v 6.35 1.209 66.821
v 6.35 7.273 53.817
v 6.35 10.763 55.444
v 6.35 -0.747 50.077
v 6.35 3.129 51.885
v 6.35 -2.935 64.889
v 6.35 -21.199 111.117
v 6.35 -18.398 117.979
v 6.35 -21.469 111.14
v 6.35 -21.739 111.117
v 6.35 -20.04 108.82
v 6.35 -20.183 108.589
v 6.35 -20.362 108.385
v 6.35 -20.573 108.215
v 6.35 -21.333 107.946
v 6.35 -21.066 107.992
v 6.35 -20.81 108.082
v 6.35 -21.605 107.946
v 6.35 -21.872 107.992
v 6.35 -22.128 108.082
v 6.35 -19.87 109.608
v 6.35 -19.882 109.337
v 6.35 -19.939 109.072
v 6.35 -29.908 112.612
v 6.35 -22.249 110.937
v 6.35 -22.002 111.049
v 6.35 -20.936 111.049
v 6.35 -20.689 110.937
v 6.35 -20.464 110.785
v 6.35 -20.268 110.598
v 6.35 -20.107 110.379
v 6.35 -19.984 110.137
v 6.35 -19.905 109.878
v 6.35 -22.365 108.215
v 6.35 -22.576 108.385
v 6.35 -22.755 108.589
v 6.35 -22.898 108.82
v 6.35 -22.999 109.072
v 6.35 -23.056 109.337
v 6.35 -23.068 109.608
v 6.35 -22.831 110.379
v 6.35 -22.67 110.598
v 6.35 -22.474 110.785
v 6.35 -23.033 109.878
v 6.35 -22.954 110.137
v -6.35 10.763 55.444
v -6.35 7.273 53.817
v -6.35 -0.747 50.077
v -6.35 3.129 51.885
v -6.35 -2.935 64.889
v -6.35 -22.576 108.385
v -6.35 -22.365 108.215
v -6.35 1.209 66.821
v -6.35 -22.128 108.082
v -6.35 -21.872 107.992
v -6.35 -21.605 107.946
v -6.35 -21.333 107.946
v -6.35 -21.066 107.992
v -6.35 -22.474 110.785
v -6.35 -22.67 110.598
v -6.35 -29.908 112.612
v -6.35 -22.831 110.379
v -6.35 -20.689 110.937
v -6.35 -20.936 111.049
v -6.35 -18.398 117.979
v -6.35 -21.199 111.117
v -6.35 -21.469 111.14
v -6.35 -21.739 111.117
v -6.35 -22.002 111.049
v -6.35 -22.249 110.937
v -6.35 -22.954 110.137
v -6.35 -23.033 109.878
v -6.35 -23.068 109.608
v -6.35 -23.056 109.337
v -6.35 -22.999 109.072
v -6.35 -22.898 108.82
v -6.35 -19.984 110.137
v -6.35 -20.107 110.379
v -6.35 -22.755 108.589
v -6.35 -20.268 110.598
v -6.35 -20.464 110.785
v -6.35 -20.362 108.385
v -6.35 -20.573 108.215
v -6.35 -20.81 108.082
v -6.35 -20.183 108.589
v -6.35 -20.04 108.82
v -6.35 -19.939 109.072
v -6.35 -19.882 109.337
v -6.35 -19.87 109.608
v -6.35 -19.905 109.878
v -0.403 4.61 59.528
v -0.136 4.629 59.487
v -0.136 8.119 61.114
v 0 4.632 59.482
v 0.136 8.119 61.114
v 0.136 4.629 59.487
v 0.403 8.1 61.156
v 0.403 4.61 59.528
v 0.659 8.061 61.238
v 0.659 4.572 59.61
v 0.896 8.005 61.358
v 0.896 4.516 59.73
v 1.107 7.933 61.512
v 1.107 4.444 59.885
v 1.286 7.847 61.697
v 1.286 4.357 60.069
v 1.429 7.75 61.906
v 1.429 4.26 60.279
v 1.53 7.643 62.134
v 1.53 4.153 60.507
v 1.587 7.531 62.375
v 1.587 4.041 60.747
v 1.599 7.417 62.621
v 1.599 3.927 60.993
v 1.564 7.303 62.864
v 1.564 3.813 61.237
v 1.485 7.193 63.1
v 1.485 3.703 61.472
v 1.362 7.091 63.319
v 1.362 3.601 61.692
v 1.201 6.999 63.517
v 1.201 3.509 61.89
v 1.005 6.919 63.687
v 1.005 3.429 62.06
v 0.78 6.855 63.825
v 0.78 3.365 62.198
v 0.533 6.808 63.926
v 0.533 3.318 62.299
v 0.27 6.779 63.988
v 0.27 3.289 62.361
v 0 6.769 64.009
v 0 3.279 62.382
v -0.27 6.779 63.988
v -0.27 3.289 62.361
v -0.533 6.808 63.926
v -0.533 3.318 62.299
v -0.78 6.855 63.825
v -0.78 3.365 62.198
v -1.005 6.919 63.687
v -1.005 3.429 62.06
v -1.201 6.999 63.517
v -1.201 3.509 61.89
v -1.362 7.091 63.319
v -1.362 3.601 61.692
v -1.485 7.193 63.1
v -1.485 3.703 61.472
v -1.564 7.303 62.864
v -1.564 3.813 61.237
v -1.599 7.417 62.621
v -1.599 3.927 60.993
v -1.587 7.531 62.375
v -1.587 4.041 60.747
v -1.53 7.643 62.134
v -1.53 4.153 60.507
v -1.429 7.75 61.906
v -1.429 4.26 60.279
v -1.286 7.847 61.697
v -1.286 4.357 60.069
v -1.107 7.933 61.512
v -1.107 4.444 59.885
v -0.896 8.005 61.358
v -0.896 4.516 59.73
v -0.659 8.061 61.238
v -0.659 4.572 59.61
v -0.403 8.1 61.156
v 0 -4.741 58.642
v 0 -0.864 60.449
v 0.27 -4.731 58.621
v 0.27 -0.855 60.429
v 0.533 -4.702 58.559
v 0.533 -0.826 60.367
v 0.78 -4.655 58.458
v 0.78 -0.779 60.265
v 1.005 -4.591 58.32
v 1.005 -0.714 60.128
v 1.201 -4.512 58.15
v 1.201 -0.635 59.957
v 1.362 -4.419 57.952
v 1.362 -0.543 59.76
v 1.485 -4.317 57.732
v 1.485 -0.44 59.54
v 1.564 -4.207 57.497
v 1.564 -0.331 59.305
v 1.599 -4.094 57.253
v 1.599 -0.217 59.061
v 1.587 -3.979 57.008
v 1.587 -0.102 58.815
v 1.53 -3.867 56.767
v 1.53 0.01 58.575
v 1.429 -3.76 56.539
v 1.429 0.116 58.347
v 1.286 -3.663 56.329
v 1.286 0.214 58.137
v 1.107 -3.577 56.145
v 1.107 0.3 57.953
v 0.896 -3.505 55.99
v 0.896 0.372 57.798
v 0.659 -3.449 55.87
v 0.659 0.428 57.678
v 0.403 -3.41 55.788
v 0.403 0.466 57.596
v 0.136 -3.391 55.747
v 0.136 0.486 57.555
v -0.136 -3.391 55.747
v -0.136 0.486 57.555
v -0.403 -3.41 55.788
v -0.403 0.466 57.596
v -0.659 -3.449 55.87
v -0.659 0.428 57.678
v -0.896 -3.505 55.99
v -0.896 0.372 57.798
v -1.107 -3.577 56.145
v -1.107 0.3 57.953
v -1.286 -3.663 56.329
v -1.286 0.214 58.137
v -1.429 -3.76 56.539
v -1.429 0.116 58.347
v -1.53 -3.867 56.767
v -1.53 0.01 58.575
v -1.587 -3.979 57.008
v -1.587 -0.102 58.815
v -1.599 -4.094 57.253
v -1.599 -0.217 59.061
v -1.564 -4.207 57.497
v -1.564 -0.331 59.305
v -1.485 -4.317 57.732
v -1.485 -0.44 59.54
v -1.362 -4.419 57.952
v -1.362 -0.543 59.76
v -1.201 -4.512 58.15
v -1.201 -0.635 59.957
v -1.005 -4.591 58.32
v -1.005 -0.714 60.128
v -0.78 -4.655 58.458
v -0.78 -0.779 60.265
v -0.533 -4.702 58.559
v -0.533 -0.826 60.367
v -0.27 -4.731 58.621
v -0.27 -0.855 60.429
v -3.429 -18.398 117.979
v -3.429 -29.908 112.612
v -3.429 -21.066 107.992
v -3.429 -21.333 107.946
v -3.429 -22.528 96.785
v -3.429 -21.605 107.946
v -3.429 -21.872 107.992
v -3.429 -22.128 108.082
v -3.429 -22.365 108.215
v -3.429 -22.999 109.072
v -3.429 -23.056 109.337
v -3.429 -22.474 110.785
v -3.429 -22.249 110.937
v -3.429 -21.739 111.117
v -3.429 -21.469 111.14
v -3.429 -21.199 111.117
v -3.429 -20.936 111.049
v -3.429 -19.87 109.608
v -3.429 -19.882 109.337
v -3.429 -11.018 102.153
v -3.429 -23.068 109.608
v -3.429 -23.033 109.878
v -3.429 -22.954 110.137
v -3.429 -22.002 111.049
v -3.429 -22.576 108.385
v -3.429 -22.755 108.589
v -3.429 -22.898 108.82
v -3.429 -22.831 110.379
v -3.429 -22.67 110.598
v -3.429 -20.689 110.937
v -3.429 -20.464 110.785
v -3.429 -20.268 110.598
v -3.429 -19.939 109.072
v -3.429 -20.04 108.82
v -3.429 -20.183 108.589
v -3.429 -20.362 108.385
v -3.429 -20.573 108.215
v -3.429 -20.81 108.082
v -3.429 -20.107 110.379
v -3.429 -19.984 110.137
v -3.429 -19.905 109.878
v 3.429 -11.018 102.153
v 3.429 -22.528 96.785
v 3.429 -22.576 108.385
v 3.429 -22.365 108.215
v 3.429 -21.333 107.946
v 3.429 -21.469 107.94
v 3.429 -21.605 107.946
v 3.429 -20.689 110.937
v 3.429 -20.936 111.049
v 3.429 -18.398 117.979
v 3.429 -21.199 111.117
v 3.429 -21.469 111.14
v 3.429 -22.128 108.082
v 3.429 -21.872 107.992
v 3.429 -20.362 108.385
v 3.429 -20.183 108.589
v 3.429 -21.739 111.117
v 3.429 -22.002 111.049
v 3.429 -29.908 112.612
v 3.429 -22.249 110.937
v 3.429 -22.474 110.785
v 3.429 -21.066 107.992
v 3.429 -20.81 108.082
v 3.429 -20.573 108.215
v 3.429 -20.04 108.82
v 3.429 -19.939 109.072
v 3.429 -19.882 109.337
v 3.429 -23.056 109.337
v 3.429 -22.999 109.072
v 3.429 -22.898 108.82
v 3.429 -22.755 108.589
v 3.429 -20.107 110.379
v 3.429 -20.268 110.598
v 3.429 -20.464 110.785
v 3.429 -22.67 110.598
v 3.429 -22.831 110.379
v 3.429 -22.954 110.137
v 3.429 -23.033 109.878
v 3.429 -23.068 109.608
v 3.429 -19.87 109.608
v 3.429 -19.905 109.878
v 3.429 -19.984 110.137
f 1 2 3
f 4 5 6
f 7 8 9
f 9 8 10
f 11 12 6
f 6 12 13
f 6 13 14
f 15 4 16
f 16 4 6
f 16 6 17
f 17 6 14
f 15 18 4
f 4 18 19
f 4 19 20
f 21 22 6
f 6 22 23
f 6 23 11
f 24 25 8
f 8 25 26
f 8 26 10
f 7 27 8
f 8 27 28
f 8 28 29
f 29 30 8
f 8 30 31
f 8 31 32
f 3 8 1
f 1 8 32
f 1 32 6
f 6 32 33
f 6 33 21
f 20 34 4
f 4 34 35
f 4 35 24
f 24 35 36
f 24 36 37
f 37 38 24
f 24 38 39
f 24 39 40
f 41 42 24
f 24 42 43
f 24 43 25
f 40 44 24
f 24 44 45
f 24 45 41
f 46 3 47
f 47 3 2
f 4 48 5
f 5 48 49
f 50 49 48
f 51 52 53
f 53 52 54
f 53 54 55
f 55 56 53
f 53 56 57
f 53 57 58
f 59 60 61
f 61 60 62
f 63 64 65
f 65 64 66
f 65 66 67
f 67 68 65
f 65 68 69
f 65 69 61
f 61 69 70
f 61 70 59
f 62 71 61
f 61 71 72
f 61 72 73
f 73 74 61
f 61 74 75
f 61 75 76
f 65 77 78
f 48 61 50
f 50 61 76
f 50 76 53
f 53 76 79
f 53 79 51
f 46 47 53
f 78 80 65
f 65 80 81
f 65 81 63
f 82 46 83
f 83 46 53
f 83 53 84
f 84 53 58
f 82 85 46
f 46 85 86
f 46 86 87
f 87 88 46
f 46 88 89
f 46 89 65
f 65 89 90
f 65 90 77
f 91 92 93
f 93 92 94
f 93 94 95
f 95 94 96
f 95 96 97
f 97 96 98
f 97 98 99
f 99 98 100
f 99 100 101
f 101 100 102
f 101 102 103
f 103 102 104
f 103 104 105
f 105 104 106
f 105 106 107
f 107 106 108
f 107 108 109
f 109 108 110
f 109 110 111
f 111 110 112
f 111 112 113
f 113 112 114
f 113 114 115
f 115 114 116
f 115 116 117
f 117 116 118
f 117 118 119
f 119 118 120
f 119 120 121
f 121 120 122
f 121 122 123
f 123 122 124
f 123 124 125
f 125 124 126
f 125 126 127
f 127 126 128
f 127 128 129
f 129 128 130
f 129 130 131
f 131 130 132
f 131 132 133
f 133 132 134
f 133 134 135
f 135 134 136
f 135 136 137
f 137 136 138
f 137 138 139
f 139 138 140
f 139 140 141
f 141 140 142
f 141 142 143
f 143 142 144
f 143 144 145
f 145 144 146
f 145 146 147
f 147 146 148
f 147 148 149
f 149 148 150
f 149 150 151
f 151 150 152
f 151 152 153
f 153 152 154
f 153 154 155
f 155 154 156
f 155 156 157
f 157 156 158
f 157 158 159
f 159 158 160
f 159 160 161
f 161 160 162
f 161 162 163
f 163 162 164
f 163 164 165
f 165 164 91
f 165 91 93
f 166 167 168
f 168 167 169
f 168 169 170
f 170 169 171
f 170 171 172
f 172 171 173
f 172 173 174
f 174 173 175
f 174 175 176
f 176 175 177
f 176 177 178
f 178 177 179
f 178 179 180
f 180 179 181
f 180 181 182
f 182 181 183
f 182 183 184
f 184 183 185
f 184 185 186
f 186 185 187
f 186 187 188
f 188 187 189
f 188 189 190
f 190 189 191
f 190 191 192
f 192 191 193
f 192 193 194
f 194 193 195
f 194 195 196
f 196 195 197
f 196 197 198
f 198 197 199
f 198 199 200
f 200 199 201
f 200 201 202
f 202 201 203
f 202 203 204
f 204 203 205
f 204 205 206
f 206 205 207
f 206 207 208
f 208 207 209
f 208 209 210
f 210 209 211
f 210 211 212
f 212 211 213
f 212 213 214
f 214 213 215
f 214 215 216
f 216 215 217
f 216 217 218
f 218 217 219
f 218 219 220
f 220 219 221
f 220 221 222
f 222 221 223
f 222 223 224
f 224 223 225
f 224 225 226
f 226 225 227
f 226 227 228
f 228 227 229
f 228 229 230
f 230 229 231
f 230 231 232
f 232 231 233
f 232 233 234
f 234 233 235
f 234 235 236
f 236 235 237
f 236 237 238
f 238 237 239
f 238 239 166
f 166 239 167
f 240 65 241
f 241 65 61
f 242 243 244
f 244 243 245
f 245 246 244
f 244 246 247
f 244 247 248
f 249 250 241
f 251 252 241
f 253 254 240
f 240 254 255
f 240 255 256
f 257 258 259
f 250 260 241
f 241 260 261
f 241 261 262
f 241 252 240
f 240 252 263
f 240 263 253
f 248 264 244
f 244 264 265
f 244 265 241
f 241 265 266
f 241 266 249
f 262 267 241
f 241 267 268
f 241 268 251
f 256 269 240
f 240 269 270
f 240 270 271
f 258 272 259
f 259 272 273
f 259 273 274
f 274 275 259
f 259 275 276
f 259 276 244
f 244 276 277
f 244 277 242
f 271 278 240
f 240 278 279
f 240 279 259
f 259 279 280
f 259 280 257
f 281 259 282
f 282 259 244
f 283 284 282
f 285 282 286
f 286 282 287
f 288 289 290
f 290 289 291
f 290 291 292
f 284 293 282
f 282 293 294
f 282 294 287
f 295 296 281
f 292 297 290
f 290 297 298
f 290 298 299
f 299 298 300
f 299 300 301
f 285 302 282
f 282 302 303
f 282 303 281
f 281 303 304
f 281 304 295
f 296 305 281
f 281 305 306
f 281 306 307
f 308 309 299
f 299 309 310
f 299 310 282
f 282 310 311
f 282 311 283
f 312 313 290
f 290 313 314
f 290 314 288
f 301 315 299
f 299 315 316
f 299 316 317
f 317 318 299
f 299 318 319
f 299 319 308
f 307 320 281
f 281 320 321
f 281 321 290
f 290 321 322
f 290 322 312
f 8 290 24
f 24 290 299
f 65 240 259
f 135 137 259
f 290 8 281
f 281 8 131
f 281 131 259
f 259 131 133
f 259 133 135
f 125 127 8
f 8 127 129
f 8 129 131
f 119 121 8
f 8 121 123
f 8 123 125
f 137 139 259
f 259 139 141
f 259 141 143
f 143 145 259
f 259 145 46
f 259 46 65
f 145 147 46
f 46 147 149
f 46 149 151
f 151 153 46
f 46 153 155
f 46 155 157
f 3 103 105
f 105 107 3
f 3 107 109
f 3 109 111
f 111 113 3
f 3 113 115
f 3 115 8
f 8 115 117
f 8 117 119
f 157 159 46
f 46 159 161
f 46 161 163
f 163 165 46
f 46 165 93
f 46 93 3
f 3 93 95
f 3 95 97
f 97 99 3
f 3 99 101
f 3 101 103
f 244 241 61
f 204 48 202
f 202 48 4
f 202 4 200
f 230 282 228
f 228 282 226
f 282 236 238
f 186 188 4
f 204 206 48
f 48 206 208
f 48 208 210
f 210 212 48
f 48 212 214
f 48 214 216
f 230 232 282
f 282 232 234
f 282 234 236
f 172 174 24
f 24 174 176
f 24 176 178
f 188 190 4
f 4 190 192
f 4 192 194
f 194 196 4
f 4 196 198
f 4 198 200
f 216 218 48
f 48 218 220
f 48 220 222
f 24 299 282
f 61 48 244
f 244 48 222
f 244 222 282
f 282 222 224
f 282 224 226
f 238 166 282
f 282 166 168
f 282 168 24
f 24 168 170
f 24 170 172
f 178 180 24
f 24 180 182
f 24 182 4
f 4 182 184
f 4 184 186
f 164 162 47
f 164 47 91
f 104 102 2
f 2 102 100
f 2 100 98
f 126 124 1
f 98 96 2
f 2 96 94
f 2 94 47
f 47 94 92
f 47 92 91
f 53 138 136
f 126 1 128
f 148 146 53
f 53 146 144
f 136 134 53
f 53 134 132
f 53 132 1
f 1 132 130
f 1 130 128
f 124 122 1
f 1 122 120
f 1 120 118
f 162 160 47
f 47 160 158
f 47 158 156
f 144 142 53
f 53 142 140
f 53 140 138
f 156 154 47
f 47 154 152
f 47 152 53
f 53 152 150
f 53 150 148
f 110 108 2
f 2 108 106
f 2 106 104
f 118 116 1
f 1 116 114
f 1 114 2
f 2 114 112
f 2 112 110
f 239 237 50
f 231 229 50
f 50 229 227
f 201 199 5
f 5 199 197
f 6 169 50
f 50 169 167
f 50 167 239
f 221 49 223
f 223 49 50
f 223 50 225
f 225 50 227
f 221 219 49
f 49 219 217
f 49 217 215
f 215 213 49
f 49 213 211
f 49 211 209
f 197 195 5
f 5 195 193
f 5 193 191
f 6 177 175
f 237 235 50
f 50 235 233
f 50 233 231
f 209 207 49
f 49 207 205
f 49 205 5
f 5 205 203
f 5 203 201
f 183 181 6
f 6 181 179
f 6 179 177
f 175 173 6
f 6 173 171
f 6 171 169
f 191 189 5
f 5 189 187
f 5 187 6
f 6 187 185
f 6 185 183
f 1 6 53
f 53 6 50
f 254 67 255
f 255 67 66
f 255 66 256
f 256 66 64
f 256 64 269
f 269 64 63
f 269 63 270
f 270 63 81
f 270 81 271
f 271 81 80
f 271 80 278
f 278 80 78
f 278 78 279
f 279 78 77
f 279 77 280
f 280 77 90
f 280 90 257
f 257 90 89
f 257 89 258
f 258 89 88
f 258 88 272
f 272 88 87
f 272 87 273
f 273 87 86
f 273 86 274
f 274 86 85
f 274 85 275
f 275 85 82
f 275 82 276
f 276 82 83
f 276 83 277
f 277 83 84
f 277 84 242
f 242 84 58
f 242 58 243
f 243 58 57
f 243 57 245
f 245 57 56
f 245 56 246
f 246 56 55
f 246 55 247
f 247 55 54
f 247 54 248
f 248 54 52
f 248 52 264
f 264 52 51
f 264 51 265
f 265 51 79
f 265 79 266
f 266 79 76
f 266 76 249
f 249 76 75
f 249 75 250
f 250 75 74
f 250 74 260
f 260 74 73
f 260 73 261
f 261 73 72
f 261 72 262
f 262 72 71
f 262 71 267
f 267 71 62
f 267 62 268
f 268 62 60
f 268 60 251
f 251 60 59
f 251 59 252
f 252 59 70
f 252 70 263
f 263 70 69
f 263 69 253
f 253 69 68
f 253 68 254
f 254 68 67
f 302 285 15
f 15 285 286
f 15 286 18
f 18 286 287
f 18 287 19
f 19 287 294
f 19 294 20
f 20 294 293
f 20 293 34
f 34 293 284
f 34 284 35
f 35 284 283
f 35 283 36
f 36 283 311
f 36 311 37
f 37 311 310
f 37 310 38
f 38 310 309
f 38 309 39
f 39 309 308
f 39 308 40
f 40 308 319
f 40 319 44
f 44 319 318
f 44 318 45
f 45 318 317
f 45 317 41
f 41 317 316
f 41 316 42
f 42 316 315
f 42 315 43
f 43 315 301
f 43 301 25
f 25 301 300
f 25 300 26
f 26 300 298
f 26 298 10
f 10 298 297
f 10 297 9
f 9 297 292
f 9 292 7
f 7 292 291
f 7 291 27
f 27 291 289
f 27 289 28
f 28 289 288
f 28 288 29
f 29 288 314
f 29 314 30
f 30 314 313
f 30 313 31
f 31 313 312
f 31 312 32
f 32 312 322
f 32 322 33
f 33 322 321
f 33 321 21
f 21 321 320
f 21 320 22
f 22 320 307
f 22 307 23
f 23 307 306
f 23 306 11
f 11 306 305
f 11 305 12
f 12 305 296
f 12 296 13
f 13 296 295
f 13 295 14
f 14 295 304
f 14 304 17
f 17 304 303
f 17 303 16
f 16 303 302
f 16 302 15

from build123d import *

# Parameters (mm, degrees)
BOSS_EXTRUDE5_START                  = -6.35
BOSS_EXTRUDE5_DEPTH                  = 12.7
M3_CLEARANCE_HOLE2_D                 = 3.2
CUT_EXTRUDE2_DEPTH                   = 12.7
BALL_START                           = -6.35
BALL_BALANCER_MASTER_MODEL_OUTLINE_R = 1.6
BALL_BALANCER_MASTER_MODEL_DEPTH     = 12.7


# Read off the part's stored shape, not the designer's step: Ball Balancer Master Model
with BuildPart() as part:
    # Sketch20 → Boss-Extrude5 (new body)
    with BuildSketch(Plane(origin=(0, 24.321911069, 11.341493392), x_dir=(0, -0.4226182617407002, 0.9063077870366497), z_dir=(0, 0.9063077870366496, 0.42261826174070016)).offset(BOSS_EXTRUDE5_START)):
        Polygon((114.700544477, -3.429), (97.238044477, -3.429), (97.238044477, 3.429), (114.700544477, 3.429), (114.700544477, 6.35), (45.701184477, 6.35), (45.701184477, -6.35), (114.700544477, -6.35), align=None)
    extrude(amount=BOSS_EXTRUDE5_DEPTH)

    # M3 Clearance Hole2 (through all)
    with Locations(Plane(origin=(0, 30.076965517, 14.025119355), x_dir=(1, 0, 0), z_dir=(0, 0.9063077870366494, 0.42261826174070066))):
        with Locations((0, -53.551184477)):
            Hole(M3_CLEARANCE_HOLE2_D / 2)

    # Sketch21 → Cut-Extrude2 (cut)
    with BuildSketch(Plane.ZY.offset(6.35)):
        Polygon((66.821464609, 1.208914252), (53.817107939, 7.272945357), (51.884897247, 3.129306154), (64.889253917, -2.93472495), align=None)
    extrude(amount=-CUT_EXTRUDE2_DEPTH, mode=Mode.SUBTRACT)

    # Ball Balancer Master Model outline → Ball Balancer Master Model (cut)
    with BuildSketch(Plane.YZ.offset(BALL_START)):
        with Locations((-21.469007696, 109.540435581)):
            Circle(BALL_BALANCER_MASTER_MODEL_OUTLINE_R)
    extrude(amount=BALL_BALANCER_MASTER_MODEL_DEPTH, mode=Mode.SUBTRACT)


solid = part.part
